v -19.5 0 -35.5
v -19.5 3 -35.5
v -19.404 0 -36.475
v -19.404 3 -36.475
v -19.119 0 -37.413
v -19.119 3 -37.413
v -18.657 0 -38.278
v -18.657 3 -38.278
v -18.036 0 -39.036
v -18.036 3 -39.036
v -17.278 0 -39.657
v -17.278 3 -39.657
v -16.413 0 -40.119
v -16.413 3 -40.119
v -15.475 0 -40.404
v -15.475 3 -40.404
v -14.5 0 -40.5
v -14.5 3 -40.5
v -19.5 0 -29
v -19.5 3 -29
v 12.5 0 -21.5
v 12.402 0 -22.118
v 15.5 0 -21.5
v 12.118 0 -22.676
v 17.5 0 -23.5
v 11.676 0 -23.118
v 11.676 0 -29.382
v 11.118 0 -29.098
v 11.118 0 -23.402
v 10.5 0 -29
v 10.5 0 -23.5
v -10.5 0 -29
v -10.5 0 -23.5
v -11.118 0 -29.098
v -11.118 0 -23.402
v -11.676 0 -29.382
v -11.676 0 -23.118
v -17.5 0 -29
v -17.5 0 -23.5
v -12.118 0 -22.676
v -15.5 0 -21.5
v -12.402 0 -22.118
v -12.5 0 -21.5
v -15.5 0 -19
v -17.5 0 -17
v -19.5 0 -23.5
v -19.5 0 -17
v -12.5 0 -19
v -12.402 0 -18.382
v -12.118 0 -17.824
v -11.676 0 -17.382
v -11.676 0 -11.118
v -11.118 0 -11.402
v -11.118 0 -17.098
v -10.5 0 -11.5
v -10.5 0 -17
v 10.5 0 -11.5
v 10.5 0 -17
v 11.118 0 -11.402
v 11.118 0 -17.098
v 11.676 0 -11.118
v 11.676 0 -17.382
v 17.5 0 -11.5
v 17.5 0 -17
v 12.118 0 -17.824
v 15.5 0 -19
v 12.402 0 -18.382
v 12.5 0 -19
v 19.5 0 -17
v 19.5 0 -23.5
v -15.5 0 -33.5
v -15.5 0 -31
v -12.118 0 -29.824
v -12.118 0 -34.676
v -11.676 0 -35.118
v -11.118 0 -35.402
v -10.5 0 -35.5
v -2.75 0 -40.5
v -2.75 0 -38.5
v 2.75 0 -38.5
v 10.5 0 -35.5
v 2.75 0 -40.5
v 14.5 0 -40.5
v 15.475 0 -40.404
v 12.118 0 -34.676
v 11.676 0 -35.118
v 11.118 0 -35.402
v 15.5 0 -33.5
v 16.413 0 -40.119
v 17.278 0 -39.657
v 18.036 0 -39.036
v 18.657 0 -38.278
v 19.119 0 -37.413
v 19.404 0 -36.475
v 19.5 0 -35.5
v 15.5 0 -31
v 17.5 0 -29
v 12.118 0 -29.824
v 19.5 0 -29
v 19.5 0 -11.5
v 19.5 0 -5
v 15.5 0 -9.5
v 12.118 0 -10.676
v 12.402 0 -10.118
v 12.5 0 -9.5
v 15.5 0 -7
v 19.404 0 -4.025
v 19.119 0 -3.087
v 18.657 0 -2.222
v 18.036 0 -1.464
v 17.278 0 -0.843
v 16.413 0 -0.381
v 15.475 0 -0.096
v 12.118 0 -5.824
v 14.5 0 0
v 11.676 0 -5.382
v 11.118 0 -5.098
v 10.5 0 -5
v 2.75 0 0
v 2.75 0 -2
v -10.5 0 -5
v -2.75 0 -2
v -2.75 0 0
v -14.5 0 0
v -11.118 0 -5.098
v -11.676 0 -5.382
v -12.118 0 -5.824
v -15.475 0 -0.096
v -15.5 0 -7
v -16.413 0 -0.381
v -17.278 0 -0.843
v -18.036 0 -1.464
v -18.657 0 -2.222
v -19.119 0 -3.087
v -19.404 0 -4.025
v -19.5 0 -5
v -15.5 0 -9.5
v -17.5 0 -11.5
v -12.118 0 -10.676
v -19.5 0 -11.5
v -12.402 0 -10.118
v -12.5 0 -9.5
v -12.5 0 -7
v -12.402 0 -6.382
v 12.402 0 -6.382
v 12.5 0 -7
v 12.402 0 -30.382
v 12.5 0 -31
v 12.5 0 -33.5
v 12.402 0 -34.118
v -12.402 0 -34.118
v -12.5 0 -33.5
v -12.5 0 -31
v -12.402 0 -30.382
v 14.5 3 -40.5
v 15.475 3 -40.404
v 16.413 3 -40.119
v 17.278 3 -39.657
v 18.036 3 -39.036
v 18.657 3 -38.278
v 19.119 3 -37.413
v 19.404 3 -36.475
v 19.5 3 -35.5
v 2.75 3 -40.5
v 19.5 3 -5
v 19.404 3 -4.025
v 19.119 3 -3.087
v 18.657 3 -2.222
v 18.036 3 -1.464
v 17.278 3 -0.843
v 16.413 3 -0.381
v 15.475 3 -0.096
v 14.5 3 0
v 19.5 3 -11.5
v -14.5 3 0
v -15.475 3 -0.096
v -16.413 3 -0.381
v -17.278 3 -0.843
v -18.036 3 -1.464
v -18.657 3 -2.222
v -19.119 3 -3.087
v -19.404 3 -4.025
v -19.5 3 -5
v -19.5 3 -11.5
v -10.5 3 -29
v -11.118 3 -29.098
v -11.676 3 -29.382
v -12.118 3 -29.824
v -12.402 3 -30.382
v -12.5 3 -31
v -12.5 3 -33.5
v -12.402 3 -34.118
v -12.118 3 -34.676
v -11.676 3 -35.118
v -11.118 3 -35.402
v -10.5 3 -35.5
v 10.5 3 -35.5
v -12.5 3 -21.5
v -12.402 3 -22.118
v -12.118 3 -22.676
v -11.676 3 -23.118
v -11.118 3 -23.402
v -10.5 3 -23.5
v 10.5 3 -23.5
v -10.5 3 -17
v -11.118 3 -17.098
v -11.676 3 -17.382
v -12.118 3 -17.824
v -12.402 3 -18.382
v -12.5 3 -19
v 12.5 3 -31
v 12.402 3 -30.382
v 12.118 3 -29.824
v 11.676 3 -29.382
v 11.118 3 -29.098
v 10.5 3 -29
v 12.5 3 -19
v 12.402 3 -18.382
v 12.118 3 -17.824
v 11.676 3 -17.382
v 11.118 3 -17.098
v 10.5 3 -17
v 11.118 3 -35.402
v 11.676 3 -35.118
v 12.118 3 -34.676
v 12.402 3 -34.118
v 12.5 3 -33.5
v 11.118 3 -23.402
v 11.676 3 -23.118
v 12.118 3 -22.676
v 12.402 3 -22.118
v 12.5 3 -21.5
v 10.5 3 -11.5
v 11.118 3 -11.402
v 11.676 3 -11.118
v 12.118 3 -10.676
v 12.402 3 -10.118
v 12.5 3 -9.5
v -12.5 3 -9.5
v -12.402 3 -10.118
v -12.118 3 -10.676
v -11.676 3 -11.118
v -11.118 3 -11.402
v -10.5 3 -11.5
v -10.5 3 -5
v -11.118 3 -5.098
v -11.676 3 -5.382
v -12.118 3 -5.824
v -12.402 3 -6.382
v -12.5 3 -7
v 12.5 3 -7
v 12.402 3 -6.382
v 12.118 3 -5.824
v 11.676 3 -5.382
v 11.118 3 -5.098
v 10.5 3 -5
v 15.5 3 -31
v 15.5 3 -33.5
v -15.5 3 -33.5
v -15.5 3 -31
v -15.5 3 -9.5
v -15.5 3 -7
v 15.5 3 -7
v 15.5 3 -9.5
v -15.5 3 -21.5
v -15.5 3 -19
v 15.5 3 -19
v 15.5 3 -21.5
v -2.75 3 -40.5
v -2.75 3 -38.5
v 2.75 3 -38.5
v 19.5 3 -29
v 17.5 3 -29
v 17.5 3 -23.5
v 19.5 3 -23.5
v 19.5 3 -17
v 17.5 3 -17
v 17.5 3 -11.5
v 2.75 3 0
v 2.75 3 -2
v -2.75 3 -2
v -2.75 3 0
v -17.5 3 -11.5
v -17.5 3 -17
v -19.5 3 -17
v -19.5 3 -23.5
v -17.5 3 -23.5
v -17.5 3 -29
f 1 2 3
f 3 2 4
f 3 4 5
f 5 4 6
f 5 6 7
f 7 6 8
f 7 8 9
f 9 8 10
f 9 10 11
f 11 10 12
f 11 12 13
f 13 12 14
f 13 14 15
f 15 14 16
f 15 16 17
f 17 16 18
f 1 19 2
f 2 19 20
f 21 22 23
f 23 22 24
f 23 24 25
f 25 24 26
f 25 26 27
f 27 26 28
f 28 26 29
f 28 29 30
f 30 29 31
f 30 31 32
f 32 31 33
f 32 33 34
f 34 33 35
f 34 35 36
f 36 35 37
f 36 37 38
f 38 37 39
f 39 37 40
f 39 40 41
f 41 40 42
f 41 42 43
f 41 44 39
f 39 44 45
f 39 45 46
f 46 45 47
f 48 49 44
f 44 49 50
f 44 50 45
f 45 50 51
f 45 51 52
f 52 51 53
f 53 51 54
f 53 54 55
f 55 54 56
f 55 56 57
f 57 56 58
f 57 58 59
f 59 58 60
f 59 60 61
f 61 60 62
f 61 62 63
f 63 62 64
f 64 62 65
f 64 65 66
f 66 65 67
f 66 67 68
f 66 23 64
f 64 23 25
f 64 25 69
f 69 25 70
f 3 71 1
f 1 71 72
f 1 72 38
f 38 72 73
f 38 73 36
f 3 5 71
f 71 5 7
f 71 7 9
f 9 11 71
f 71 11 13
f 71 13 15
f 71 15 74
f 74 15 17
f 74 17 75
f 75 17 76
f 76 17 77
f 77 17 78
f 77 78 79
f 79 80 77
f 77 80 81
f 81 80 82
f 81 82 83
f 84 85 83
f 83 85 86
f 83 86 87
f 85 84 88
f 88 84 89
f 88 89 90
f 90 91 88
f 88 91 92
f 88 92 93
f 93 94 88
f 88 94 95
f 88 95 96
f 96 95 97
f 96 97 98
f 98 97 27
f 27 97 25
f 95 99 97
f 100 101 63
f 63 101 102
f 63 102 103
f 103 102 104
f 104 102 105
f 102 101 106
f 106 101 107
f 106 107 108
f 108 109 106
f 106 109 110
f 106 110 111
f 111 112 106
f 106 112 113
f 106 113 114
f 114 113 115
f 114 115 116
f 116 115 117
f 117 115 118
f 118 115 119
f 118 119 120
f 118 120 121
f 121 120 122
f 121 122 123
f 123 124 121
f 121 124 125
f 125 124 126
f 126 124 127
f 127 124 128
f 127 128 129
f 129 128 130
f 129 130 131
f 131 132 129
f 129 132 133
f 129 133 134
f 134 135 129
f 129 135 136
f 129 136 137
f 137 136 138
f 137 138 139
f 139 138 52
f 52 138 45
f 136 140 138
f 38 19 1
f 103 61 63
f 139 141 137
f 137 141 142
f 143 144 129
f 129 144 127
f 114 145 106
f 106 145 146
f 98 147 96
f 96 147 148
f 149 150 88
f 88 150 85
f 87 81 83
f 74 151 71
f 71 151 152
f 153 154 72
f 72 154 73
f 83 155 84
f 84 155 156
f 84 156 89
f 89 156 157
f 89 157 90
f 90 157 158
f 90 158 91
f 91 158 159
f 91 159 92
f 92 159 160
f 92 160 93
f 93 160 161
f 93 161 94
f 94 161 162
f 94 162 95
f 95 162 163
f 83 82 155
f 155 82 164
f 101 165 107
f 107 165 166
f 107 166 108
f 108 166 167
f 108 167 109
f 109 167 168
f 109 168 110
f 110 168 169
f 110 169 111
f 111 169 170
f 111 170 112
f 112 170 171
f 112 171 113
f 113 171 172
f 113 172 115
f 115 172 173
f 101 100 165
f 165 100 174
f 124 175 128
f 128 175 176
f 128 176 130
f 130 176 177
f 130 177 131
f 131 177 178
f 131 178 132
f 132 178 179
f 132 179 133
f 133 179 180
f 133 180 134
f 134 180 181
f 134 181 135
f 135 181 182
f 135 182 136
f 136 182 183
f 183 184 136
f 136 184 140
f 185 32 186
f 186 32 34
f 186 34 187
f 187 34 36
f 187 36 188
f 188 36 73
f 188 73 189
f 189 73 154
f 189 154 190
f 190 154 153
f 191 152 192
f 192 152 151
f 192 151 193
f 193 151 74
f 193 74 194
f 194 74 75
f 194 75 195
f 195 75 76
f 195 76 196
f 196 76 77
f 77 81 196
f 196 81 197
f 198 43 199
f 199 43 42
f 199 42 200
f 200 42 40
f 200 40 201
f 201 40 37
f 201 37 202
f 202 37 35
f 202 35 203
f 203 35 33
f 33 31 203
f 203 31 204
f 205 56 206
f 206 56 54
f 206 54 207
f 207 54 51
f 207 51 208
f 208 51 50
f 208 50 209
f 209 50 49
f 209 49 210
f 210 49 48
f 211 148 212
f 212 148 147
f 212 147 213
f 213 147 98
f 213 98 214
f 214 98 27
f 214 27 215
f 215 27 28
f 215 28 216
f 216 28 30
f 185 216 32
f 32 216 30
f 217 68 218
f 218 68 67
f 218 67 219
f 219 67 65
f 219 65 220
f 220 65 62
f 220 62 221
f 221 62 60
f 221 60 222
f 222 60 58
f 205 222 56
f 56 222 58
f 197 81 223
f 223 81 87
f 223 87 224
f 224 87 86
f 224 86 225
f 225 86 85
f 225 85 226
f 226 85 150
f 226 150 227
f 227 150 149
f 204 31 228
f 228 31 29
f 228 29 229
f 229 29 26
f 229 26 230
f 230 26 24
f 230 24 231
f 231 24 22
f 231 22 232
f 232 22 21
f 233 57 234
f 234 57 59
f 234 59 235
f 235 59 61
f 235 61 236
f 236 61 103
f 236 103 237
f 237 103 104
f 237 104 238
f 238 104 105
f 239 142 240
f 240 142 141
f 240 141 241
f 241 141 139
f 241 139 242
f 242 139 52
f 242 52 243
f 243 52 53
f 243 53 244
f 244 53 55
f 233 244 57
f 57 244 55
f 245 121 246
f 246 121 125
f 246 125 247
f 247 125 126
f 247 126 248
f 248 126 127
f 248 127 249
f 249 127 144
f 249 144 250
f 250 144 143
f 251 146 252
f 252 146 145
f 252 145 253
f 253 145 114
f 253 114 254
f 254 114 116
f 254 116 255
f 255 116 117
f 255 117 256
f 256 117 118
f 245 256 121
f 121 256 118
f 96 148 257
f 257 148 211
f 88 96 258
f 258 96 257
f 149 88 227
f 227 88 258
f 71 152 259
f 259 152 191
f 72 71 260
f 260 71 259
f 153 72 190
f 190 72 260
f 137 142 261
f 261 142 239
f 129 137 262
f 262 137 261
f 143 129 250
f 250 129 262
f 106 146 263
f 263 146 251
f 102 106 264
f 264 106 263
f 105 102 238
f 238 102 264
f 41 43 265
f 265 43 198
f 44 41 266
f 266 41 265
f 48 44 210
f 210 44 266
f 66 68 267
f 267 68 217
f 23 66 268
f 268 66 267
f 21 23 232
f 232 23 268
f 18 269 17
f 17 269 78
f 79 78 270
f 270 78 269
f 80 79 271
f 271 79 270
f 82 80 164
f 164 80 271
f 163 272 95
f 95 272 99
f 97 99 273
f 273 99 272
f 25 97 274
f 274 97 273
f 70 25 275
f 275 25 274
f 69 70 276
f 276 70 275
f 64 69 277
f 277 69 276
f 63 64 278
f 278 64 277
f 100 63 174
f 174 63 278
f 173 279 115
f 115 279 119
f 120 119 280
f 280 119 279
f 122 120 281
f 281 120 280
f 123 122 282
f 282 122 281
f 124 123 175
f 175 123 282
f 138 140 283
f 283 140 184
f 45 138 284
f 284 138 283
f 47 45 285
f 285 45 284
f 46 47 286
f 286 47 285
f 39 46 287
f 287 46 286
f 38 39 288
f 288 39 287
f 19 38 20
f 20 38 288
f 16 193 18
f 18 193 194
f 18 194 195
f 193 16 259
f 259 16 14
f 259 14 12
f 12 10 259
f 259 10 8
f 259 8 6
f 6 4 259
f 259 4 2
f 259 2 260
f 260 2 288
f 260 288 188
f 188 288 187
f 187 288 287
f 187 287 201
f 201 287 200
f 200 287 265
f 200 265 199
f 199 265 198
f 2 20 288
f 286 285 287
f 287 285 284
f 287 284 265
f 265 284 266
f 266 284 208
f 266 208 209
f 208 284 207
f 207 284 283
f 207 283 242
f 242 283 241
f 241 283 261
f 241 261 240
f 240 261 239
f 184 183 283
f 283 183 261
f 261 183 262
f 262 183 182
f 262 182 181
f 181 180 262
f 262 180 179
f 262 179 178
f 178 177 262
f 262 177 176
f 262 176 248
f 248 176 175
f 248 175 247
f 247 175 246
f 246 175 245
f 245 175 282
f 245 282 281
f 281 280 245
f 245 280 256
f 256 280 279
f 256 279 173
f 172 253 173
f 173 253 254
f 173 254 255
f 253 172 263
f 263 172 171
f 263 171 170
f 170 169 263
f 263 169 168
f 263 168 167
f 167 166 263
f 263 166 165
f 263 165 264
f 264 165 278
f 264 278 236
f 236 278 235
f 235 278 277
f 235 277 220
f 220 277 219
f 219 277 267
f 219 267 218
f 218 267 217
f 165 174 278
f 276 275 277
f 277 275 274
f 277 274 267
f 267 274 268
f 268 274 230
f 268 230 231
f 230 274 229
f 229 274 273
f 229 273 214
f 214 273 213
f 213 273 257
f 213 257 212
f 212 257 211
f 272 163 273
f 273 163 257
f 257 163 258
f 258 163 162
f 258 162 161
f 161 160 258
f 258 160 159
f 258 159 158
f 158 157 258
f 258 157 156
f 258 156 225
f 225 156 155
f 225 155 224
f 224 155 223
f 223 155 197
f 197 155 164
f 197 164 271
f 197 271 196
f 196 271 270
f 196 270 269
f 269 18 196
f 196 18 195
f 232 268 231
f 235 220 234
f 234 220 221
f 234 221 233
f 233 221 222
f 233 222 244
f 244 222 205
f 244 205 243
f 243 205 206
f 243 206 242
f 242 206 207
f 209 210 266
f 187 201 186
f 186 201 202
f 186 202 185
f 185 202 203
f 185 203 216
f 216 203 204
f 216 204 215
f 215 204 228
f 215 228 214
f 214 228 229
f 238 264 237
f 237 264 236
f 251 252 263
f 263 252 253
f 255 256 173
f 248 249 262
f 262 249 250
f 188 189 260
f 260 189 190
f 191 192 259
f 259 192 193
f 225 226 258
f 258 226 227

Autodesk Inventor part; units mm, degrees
ref_plane "YZ Plane" through (0, 0, 0) normal (1, 0, 0) x (0, 1, 0)
ref_plane "XZ Plane" through (0, 0, 0) normal (0, 1, 0) x (-1, 0, 0)
ref_plane "XY Plane" through (0, 0, 0) normal (0, 0, 1) x (1, 0, 0)
sketch "Эскиз1" plane through (0, 0, 0) normal (0, 1, 0) x (-1, 0, 0)
  line L0 (19.5, 0) -> (12.5, 0)
  line L1 (12.5, 0) -> (12.5, -40.5)
  line L2 (12.5, -40.5) -> (19.5, -40.5)
  line L3 (19.5, -40.5) -> (19.5, 0)
  line L4 (-12.5, 0) -> (-19.5, 0)
  line L5 (-19.5, 0) -> (-19.5, -40.5)
  line L6 (-19.5, -40.5) -> (-12.5, -40.5)
  line L7 (-12.5, -40.5) -> (-12.5, 0)
  line L8 (0, 0) -> (0, -102.7933) construction
  line L9 (12.5, -7) -> (15.5, -7)
  line L10 (15.5, -7) -> (15.5, -9.5)
  line L11 (15.5, -9.5) -> (12.5, -9.5)
  line L12 (12.5, -9.5) -> (12.5, -7)
  line L13 (-12.5, -7) -> (-15.5, -7)
  line L14 (-15.5, -7) -> (-15.5, -9.5)
  line L15 (-15.5, -9.5) -> (-12.5, -9.5)
  line L16 (-12.5, -9.5) -> (-12.5, -7)
  line L17 (15.5, -21.5) -> (12.5, -21.5)
  line L18 (12.5, -19) -> (15.5, -19)
  line L19 (15.5, -19) -> (15.5, -21.5)
  line L20 (12.5, -21.5) -> (12.5, -19)
  line L21 (-15.5, -21.5) -> (-12.5, -21.5)
  line L22 (-15.5, -19) -> (-15.5, -21.5)
  line L23 (-12.5, -19) -> (-15.5, -19)
  line L24 (-12.5, -21.5) -> (-12.5, -19)
  line L25 (15.5, -33.5) -> (12.5, -33.5)
  line L26 (12.5, -31) -> (15.5, -31)
  line L27 (15.5, -31) -> (15.5, -33.5)
  line L28 (12.5, -33.5) -> (12.5, -31)
  line L29 (-15.5, -33.5) -> (-12.5, -33.5)
  line L30 (-15.5, -31) -> (-15.5, -33.5)
  line L31 (-12.5, -31) -> (-15.5, -31)
  line L32 (-12.5, -33.5) -> (-12.5, -31)
  line L33 (19.5, 0) -> (-19.5, 0)
  line L34 (-12.5, -5) -> (12.5, -5)
  line L35 (-19.5, -40.5) -> (19.5, -40.5)
  line L36 (12.5, -35.5) -> (-12.5, -35.5)
  line L37 (12.5, -11.5) -> (-12.5, -11.5)
  line L38 (-12.5, -11.5) -> (-12.5, -17)
  line L39 (-12.5, -17) -> (12.5, -17)
  line L40 (12.5, -17) -> (12.5, -11.5)
  line L41 (12.5, -23.5) -> (-12.5, -23.5)
  line L42 (-12.5, -23.5) -> (-12.5, -29)
  line L43 (-12.5, -29) -> (12.5, -29)
  line L44 (12.5, -29) -> (12.5, -23.5)
  line L45 (19.5, -11.5) -> (17.5, -11.5)
  line L46 (17.5, -11.5) -> (17.5, -17)
  line L47 (17.5, -17) -> (19.5, -17)
  line L48 (19.5, -17) -> (19.5, -11.5)
  line L49 (19.5, -23.5) -> (17.5, -23.5)
  line L50 (17.5, -23.5) -> (17.5, -29)
  line L51 (17.5, -29) -> (19.5, -29)
  line L52 (19.5, -29) -> (19.5, -23.5)
  line L53 (-19.5, -11.5) -> (-17.5, -11.5)
  line L54 (-17.5, -11.5) -> (-17.5, -17)
  line L55 (-17.5, -17) -> (-19.5, -17)
  line L56 (-19.5, -17) -> (-19.5, -11.5)
  line L57 (-19.5, -23.5) -> (-17.5, -23.5)
  line L58 (-17.5, -23.5) -> (-17.5, -29)
  line L59 (-17.5, -29) -> (-19.5, -29)
  line L60 (-19.5, -29) -> (-19.5, -23.5)
  line L61 (2.75, 0) -> (-2.75, 0)
  line L62 (-2.75, 0) -> (-2.75, -2)
  line L63 (-2.75, -2) -> (2.75, -2)
  line L64 (2.75, -2) -> (2.75, 0)
  line L65 (2.75, -40.5) -> (-2.75, -40.5)
  line L66 (-2.75, -40.5) -> (-2.75, -38.5)
  line L67 (-2.75, -38.5) -> (2.75, -38.5)
  line L68 (2.75, -38.5) -> (2.75, -40.5)
  point P0 (-12.5, -40.5)
  point P1 (-12.5, -33.5)
  point P2 (-12.5, -31)
  point P3 (-12.5, -21.5)
  point P4 (-12.5, -19)
  point P5 (-12.5, -9.5)
  point P6 (12.5, -9.5)
  point P7 (12.5, -19)
  point P8 (12.5, -21.5)
  point P9 (12.5, -31)
  point P10 (12.5, -33.5)
  point P11 (12.5, -29)
  point P12 (12.5, -17)
  point P13 (-12.5, -11.5)
  point P14 (18.5, -17)
  point P15 (18.5, -11.5)
  point P16 (-18.5, -11.5)
  point P17 (-18.5, -17)
  point P18 (-18.5, -23.5)
  point P19 (18.5, -23.5)
  point P20 (-19.5, -17)
  point P21 (-19.5, -29)
  point P22 (19.5, -17)
  dimension "d0" = 2.5
  dimension "d1" = 3
  dimension "d4" = 12
  dimension "d9" = 31
  dimension "d10" = 4
  dimension "d11" = 5
  dimension "d12" = 5
  dimension "d14" = 2
  dimension "d17" = 2
  dimension "d18" = 2
  dimension "d19" = 2
  dimension "d20" = 2
  dimension "d21" = 2
  dimension "d24" = 2
  dimension "d25" = 2
  dimension "d26" = 5.5
extrude "Выдавливание1" add sketch "Эскиз1" along normal blind 3 contours L3 L45 L46 L47 L49 L50 L51 L2 L1 L25 L27 L26 L17 L19 L18 L11 L10 L9 L0 | L1 L34 L7 L33 L62 L63 L64 | L7 L13 L14 L15 L23 L22 L21 L31 L30 L29 L6 L5 L59 L58 L57 L55 L54 L53 L4 | L1 L39 L7 L37 | L35 L68 L67 L66 L7 L36 L1 | L1 L43 L7 L41
fillet "Сопряжение1" radius 2 12 edges at (12.5, 1.5, -5) (-12.5, 1.5, -5) (-12.5, 1.5, -11.5) (12.5, 1.5, -11.5) (12.5, 1.5, -23.5) (12.5, 1.5, -35.5) (12.5, 1.5, -17) (12.5, 1.5, -29) (-12.5, 1.5, -17) (-12.5, 1.5, -23.5) (-12.5, 1.5, -35.5) (-12.5, 1.5, -29)
fillet "Сопряжение2" radius 5 4 edges at (-19.5, 1.5, 0) (19.5, 1.5, 0) (19.5, 1.5, -40.5) (-19.5, 1.5, -40.5)
equation "\"d12\" = d11"
properties part number "Крепление РБАСУ" material "Пластик АБС"
